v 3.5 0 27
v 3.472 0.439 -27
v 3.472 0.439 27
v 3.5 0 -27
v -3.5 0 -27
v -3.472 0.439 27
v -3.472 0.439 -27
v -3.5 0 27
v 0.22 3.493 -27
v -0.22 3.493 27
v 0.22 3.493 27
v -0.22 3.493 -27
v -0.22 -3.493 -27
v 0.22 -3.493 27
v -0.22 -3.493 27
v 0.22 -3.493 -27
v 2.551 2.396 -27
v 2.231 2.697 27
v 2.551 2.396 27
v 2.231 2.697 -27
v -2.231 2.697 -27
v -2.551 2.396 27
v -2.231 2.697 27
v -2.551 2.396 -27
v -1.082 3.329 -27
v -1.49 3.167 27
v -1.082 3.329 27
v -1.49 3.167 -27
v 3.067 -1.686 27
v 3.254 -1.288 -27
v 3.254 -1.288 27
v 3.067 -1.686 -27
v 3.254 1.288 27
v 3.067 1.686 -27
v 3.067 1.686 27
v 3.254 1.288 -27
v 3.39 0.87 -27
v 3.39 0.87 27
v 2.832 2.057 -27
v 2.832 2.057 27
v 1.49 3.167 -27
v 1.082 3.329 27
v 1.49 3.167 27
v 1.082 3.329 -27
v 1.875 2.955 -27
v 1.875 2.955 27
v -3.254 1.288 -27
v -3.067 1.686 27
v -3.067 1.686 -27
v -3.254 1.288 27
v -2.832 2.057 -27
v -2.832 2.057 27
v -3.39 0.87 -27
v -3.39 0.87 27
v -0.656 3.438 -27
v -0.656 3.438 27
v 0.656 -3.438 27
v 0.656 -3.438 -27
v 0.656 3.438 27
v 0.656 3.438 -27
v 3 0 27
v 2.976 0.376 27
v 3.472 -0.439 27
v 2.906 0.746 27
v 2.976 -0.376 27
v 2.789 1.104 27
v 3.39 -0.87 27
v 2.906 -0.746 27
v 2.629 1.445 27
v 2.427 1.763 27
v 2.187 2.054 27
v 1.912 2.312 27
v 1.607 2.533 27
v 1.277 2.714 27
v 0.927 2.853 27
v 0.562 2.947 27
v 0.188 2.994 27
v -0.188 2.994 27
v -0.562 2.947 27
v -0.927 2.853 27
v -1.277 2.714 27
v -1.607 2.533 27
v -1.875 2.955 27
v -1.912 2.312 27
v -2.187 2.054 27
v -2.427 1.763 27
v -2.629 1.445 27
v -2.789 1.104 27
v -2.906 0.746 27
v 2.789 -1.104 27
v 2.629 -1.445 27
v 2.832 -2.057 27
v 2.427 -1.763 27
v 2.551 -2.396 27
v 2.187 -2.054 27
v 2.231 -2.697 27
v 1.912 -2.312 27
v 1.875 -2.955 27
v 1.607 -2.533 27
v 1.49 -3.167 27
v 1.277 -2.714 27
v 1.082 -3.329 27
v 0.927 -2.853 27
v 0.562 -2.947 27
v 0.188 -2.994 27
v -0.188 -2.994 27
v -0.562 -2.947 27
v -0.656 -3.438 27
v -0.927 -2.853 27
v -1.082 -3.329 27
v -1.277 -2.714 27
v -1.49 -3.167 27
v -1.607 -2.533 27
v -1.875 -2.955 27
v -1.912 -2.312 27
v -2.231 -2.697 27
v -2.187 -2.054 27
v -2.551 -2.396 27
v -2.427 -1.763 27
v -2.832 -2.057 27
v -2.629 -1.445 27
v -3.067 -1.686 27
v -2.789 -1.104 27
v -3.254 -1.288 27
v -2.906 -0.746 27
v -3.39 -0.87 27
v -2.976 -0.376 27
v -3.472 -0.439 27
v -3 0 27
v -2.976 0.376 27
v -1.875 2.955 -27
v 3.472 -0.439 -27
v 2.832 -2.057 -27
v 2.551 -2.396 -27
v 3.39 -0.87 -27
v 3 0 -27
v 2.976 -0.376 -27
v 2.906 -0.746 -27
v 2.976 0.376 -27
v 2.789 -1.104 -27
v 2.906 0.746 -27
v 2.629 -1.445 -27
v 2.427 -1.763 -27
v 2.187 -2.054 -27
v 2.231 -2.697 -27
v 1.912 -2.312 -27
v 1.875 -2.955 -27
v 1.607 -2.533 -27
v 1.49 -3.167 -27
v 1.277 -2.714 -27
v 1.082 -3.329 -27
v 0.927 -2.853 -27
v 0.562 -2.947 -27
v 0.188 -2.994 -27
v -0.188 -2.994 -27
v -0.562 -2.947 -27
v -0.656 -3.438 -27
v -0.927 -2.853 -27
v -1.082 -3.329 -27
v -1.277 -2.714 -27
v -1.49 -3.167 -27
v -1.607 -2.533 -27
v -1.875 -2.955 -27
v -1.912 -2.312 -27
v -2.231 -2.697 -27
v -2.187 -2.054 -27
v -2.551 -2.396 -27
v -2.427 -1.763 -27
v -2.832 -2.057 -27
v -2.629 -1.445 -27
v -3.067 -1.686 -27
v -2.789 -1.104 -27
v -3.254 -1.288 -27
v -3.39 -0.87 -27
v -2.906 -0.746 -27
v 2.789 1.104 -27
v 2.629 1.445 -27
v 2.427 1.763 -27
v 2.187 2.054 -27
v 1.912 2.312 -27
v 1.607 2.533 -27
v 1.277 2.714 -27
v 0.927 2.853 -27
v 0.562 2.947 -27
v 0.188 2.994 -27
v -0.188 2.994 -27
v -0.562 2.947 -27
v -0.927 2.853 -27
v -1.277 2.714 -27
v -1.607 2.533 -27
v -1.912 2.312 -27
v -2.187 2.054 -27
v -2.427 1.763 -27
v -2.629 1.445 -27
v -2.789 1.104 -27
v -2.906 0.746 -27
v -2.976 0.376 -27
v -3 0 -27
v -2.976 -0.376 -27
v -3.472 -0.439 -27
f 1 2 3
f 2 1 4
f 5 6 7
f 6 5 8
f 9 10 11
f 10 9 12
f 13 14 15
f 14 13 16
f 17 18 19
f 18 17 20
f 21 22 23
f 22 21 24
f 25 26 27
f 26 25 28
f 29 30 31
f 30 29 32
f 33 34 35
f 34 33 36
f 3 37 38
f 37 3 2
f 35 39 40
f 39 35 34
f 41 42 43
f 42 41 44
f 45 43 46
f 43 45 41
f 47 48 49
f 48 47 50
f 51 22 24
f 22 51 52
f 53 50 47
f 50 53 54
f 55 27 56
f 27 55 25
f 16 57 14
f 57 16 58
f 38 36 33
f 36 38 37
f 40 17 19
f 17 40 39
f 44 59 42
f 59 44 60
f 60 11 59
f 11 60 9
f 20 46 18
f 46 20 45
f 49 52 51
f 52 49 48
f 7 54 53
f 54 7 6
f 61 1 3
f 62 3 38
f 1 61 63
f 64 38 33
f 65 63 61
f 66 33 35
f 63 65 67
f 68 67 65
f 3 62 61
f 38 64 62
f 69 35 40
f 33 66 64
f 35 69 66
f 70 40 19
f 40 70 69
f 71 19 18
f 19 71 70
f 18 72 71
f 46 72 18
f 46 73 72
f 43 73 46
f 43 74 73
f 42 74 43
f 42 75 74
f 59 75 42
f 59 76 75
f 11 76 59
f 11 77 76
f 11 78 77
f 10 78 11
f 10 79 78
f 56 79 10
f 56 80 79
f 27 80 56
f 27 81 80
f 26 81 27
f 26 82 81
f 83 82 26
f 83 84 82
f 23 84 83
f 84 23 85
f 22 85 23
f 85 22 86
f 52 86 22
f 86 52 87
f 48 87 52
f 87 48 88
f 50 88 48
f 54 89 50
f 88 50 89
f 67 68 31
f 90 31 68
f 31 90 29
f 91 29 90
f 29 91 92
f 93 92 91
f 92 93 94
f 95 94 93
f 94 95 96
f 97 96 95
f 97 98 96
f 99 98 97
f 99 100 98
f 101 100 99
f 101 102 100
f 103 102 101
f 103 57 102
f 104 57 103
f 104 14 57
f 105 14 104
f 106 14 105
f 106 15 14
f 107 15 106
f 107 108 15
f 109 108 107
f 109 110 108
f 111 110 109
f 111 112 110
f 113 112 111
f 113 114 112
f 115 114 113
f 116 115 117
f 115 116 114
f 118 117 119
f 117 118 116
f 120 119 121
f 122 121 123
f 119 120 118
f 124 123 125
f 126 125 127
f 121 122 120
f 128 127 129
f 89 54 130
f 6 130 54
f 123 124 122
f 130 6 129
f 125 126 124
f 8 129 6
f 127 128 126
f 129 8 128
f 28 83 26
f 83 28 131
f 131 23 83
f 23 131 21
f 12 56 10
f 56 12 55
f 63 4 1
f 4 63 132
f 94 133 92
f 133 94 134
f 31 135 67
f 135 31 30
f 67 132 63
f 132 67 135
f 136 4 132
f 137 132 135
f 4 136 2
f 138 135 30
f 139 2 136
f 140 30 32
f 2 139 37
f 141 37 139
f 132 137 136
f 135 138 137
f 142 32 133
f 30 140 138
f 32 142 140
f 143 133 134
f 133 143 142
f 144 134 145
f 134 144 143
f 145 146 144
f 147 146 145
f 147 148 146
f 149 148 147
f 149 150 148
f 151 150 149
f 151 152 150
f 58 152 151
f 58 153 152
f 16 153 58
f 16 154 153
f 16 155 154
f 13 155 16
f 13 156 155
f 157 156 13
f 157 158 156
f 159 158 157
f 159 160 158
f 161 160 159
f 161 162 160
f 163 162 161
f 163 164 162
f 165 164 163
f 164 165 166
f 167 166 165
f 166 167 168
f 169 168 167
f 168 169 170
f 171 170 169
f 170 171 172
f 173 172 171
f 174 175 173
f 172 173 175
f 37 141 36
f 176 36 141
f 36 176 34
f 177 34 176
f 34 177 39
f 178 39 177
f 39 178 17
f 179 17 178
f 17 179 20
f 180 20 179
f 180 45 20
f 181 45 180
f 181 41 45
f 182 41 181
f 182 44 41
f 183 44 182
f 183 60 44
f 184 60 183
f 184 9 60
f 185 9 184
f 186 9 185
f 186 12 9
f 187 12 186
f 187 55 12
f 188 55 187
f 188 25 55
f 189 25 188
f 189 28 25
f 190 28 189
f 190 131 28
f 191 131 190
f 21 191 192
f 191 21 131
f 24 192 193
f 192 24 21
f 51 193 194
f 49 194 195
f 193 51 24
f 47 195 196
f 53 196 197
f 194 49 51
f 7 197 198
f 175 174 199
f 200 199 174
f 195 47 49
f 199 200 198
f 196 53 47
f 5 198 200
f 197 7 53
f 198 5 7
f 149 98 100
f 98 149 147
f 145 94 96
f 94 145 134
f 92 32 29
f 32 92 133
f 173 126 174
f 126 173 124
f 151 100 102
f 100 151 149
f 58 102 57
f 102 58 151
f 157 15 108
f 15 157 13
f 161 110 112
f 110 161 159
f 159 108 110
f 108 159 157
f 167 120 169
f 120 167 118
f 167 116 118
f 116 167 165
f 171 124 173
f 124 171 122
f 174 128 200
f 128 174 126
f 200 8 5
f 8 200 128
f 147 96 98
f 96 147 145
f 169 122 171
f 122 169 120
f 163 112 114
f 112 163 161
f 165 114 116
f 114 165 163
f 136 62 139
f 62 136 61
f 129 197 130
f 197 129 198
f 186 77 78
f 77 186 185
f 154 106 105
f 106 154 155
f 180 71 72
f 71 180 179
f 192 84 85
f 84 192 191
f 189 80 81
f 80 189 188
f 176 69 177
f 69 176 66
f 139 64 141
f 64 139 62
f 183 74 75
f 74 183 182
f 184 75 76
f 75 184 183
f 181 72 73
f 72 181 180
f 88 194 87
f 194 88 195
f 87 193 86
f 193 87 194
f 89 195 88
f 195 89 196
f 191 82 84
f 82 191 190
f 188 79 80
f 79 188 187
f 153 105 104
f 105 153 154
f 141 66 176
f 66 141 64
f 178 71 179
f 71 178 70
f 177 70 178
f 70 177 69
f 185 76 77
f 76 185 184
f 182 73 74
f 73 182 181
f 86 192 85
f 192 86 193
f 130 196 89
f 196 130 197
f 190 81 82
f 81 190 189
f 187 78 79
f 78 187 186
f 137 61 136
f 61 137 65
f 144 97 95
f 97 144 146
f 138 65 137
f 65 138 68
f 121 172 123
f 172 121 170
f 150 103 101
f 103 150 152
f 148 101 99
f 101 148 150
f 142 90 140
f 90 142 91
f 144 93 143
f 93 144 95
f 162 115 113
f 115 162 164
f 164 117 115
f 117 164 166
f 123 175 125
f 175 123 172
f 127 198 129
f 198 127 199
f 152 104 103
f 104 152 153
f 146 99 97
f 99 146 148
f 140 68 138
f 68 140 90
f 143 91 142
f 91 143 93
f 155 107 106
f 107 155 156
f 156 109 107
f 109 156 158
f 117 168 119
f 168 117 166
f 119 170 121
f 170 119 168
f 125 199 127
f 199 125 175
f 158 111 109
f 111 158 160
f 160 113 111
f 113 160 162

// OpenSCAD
$fn = 50;


difference() {
	union() {
		translate(v = [0, 0, -27.0000000000]) {
			cylinder(h = 54, r = 3.5000000000);
		}
	}
	union() {
		translate(v = [0, 0, -100.0000000000]) {
			cylinder(h = 200, r = 3.0000000000);
		}
	}
}
